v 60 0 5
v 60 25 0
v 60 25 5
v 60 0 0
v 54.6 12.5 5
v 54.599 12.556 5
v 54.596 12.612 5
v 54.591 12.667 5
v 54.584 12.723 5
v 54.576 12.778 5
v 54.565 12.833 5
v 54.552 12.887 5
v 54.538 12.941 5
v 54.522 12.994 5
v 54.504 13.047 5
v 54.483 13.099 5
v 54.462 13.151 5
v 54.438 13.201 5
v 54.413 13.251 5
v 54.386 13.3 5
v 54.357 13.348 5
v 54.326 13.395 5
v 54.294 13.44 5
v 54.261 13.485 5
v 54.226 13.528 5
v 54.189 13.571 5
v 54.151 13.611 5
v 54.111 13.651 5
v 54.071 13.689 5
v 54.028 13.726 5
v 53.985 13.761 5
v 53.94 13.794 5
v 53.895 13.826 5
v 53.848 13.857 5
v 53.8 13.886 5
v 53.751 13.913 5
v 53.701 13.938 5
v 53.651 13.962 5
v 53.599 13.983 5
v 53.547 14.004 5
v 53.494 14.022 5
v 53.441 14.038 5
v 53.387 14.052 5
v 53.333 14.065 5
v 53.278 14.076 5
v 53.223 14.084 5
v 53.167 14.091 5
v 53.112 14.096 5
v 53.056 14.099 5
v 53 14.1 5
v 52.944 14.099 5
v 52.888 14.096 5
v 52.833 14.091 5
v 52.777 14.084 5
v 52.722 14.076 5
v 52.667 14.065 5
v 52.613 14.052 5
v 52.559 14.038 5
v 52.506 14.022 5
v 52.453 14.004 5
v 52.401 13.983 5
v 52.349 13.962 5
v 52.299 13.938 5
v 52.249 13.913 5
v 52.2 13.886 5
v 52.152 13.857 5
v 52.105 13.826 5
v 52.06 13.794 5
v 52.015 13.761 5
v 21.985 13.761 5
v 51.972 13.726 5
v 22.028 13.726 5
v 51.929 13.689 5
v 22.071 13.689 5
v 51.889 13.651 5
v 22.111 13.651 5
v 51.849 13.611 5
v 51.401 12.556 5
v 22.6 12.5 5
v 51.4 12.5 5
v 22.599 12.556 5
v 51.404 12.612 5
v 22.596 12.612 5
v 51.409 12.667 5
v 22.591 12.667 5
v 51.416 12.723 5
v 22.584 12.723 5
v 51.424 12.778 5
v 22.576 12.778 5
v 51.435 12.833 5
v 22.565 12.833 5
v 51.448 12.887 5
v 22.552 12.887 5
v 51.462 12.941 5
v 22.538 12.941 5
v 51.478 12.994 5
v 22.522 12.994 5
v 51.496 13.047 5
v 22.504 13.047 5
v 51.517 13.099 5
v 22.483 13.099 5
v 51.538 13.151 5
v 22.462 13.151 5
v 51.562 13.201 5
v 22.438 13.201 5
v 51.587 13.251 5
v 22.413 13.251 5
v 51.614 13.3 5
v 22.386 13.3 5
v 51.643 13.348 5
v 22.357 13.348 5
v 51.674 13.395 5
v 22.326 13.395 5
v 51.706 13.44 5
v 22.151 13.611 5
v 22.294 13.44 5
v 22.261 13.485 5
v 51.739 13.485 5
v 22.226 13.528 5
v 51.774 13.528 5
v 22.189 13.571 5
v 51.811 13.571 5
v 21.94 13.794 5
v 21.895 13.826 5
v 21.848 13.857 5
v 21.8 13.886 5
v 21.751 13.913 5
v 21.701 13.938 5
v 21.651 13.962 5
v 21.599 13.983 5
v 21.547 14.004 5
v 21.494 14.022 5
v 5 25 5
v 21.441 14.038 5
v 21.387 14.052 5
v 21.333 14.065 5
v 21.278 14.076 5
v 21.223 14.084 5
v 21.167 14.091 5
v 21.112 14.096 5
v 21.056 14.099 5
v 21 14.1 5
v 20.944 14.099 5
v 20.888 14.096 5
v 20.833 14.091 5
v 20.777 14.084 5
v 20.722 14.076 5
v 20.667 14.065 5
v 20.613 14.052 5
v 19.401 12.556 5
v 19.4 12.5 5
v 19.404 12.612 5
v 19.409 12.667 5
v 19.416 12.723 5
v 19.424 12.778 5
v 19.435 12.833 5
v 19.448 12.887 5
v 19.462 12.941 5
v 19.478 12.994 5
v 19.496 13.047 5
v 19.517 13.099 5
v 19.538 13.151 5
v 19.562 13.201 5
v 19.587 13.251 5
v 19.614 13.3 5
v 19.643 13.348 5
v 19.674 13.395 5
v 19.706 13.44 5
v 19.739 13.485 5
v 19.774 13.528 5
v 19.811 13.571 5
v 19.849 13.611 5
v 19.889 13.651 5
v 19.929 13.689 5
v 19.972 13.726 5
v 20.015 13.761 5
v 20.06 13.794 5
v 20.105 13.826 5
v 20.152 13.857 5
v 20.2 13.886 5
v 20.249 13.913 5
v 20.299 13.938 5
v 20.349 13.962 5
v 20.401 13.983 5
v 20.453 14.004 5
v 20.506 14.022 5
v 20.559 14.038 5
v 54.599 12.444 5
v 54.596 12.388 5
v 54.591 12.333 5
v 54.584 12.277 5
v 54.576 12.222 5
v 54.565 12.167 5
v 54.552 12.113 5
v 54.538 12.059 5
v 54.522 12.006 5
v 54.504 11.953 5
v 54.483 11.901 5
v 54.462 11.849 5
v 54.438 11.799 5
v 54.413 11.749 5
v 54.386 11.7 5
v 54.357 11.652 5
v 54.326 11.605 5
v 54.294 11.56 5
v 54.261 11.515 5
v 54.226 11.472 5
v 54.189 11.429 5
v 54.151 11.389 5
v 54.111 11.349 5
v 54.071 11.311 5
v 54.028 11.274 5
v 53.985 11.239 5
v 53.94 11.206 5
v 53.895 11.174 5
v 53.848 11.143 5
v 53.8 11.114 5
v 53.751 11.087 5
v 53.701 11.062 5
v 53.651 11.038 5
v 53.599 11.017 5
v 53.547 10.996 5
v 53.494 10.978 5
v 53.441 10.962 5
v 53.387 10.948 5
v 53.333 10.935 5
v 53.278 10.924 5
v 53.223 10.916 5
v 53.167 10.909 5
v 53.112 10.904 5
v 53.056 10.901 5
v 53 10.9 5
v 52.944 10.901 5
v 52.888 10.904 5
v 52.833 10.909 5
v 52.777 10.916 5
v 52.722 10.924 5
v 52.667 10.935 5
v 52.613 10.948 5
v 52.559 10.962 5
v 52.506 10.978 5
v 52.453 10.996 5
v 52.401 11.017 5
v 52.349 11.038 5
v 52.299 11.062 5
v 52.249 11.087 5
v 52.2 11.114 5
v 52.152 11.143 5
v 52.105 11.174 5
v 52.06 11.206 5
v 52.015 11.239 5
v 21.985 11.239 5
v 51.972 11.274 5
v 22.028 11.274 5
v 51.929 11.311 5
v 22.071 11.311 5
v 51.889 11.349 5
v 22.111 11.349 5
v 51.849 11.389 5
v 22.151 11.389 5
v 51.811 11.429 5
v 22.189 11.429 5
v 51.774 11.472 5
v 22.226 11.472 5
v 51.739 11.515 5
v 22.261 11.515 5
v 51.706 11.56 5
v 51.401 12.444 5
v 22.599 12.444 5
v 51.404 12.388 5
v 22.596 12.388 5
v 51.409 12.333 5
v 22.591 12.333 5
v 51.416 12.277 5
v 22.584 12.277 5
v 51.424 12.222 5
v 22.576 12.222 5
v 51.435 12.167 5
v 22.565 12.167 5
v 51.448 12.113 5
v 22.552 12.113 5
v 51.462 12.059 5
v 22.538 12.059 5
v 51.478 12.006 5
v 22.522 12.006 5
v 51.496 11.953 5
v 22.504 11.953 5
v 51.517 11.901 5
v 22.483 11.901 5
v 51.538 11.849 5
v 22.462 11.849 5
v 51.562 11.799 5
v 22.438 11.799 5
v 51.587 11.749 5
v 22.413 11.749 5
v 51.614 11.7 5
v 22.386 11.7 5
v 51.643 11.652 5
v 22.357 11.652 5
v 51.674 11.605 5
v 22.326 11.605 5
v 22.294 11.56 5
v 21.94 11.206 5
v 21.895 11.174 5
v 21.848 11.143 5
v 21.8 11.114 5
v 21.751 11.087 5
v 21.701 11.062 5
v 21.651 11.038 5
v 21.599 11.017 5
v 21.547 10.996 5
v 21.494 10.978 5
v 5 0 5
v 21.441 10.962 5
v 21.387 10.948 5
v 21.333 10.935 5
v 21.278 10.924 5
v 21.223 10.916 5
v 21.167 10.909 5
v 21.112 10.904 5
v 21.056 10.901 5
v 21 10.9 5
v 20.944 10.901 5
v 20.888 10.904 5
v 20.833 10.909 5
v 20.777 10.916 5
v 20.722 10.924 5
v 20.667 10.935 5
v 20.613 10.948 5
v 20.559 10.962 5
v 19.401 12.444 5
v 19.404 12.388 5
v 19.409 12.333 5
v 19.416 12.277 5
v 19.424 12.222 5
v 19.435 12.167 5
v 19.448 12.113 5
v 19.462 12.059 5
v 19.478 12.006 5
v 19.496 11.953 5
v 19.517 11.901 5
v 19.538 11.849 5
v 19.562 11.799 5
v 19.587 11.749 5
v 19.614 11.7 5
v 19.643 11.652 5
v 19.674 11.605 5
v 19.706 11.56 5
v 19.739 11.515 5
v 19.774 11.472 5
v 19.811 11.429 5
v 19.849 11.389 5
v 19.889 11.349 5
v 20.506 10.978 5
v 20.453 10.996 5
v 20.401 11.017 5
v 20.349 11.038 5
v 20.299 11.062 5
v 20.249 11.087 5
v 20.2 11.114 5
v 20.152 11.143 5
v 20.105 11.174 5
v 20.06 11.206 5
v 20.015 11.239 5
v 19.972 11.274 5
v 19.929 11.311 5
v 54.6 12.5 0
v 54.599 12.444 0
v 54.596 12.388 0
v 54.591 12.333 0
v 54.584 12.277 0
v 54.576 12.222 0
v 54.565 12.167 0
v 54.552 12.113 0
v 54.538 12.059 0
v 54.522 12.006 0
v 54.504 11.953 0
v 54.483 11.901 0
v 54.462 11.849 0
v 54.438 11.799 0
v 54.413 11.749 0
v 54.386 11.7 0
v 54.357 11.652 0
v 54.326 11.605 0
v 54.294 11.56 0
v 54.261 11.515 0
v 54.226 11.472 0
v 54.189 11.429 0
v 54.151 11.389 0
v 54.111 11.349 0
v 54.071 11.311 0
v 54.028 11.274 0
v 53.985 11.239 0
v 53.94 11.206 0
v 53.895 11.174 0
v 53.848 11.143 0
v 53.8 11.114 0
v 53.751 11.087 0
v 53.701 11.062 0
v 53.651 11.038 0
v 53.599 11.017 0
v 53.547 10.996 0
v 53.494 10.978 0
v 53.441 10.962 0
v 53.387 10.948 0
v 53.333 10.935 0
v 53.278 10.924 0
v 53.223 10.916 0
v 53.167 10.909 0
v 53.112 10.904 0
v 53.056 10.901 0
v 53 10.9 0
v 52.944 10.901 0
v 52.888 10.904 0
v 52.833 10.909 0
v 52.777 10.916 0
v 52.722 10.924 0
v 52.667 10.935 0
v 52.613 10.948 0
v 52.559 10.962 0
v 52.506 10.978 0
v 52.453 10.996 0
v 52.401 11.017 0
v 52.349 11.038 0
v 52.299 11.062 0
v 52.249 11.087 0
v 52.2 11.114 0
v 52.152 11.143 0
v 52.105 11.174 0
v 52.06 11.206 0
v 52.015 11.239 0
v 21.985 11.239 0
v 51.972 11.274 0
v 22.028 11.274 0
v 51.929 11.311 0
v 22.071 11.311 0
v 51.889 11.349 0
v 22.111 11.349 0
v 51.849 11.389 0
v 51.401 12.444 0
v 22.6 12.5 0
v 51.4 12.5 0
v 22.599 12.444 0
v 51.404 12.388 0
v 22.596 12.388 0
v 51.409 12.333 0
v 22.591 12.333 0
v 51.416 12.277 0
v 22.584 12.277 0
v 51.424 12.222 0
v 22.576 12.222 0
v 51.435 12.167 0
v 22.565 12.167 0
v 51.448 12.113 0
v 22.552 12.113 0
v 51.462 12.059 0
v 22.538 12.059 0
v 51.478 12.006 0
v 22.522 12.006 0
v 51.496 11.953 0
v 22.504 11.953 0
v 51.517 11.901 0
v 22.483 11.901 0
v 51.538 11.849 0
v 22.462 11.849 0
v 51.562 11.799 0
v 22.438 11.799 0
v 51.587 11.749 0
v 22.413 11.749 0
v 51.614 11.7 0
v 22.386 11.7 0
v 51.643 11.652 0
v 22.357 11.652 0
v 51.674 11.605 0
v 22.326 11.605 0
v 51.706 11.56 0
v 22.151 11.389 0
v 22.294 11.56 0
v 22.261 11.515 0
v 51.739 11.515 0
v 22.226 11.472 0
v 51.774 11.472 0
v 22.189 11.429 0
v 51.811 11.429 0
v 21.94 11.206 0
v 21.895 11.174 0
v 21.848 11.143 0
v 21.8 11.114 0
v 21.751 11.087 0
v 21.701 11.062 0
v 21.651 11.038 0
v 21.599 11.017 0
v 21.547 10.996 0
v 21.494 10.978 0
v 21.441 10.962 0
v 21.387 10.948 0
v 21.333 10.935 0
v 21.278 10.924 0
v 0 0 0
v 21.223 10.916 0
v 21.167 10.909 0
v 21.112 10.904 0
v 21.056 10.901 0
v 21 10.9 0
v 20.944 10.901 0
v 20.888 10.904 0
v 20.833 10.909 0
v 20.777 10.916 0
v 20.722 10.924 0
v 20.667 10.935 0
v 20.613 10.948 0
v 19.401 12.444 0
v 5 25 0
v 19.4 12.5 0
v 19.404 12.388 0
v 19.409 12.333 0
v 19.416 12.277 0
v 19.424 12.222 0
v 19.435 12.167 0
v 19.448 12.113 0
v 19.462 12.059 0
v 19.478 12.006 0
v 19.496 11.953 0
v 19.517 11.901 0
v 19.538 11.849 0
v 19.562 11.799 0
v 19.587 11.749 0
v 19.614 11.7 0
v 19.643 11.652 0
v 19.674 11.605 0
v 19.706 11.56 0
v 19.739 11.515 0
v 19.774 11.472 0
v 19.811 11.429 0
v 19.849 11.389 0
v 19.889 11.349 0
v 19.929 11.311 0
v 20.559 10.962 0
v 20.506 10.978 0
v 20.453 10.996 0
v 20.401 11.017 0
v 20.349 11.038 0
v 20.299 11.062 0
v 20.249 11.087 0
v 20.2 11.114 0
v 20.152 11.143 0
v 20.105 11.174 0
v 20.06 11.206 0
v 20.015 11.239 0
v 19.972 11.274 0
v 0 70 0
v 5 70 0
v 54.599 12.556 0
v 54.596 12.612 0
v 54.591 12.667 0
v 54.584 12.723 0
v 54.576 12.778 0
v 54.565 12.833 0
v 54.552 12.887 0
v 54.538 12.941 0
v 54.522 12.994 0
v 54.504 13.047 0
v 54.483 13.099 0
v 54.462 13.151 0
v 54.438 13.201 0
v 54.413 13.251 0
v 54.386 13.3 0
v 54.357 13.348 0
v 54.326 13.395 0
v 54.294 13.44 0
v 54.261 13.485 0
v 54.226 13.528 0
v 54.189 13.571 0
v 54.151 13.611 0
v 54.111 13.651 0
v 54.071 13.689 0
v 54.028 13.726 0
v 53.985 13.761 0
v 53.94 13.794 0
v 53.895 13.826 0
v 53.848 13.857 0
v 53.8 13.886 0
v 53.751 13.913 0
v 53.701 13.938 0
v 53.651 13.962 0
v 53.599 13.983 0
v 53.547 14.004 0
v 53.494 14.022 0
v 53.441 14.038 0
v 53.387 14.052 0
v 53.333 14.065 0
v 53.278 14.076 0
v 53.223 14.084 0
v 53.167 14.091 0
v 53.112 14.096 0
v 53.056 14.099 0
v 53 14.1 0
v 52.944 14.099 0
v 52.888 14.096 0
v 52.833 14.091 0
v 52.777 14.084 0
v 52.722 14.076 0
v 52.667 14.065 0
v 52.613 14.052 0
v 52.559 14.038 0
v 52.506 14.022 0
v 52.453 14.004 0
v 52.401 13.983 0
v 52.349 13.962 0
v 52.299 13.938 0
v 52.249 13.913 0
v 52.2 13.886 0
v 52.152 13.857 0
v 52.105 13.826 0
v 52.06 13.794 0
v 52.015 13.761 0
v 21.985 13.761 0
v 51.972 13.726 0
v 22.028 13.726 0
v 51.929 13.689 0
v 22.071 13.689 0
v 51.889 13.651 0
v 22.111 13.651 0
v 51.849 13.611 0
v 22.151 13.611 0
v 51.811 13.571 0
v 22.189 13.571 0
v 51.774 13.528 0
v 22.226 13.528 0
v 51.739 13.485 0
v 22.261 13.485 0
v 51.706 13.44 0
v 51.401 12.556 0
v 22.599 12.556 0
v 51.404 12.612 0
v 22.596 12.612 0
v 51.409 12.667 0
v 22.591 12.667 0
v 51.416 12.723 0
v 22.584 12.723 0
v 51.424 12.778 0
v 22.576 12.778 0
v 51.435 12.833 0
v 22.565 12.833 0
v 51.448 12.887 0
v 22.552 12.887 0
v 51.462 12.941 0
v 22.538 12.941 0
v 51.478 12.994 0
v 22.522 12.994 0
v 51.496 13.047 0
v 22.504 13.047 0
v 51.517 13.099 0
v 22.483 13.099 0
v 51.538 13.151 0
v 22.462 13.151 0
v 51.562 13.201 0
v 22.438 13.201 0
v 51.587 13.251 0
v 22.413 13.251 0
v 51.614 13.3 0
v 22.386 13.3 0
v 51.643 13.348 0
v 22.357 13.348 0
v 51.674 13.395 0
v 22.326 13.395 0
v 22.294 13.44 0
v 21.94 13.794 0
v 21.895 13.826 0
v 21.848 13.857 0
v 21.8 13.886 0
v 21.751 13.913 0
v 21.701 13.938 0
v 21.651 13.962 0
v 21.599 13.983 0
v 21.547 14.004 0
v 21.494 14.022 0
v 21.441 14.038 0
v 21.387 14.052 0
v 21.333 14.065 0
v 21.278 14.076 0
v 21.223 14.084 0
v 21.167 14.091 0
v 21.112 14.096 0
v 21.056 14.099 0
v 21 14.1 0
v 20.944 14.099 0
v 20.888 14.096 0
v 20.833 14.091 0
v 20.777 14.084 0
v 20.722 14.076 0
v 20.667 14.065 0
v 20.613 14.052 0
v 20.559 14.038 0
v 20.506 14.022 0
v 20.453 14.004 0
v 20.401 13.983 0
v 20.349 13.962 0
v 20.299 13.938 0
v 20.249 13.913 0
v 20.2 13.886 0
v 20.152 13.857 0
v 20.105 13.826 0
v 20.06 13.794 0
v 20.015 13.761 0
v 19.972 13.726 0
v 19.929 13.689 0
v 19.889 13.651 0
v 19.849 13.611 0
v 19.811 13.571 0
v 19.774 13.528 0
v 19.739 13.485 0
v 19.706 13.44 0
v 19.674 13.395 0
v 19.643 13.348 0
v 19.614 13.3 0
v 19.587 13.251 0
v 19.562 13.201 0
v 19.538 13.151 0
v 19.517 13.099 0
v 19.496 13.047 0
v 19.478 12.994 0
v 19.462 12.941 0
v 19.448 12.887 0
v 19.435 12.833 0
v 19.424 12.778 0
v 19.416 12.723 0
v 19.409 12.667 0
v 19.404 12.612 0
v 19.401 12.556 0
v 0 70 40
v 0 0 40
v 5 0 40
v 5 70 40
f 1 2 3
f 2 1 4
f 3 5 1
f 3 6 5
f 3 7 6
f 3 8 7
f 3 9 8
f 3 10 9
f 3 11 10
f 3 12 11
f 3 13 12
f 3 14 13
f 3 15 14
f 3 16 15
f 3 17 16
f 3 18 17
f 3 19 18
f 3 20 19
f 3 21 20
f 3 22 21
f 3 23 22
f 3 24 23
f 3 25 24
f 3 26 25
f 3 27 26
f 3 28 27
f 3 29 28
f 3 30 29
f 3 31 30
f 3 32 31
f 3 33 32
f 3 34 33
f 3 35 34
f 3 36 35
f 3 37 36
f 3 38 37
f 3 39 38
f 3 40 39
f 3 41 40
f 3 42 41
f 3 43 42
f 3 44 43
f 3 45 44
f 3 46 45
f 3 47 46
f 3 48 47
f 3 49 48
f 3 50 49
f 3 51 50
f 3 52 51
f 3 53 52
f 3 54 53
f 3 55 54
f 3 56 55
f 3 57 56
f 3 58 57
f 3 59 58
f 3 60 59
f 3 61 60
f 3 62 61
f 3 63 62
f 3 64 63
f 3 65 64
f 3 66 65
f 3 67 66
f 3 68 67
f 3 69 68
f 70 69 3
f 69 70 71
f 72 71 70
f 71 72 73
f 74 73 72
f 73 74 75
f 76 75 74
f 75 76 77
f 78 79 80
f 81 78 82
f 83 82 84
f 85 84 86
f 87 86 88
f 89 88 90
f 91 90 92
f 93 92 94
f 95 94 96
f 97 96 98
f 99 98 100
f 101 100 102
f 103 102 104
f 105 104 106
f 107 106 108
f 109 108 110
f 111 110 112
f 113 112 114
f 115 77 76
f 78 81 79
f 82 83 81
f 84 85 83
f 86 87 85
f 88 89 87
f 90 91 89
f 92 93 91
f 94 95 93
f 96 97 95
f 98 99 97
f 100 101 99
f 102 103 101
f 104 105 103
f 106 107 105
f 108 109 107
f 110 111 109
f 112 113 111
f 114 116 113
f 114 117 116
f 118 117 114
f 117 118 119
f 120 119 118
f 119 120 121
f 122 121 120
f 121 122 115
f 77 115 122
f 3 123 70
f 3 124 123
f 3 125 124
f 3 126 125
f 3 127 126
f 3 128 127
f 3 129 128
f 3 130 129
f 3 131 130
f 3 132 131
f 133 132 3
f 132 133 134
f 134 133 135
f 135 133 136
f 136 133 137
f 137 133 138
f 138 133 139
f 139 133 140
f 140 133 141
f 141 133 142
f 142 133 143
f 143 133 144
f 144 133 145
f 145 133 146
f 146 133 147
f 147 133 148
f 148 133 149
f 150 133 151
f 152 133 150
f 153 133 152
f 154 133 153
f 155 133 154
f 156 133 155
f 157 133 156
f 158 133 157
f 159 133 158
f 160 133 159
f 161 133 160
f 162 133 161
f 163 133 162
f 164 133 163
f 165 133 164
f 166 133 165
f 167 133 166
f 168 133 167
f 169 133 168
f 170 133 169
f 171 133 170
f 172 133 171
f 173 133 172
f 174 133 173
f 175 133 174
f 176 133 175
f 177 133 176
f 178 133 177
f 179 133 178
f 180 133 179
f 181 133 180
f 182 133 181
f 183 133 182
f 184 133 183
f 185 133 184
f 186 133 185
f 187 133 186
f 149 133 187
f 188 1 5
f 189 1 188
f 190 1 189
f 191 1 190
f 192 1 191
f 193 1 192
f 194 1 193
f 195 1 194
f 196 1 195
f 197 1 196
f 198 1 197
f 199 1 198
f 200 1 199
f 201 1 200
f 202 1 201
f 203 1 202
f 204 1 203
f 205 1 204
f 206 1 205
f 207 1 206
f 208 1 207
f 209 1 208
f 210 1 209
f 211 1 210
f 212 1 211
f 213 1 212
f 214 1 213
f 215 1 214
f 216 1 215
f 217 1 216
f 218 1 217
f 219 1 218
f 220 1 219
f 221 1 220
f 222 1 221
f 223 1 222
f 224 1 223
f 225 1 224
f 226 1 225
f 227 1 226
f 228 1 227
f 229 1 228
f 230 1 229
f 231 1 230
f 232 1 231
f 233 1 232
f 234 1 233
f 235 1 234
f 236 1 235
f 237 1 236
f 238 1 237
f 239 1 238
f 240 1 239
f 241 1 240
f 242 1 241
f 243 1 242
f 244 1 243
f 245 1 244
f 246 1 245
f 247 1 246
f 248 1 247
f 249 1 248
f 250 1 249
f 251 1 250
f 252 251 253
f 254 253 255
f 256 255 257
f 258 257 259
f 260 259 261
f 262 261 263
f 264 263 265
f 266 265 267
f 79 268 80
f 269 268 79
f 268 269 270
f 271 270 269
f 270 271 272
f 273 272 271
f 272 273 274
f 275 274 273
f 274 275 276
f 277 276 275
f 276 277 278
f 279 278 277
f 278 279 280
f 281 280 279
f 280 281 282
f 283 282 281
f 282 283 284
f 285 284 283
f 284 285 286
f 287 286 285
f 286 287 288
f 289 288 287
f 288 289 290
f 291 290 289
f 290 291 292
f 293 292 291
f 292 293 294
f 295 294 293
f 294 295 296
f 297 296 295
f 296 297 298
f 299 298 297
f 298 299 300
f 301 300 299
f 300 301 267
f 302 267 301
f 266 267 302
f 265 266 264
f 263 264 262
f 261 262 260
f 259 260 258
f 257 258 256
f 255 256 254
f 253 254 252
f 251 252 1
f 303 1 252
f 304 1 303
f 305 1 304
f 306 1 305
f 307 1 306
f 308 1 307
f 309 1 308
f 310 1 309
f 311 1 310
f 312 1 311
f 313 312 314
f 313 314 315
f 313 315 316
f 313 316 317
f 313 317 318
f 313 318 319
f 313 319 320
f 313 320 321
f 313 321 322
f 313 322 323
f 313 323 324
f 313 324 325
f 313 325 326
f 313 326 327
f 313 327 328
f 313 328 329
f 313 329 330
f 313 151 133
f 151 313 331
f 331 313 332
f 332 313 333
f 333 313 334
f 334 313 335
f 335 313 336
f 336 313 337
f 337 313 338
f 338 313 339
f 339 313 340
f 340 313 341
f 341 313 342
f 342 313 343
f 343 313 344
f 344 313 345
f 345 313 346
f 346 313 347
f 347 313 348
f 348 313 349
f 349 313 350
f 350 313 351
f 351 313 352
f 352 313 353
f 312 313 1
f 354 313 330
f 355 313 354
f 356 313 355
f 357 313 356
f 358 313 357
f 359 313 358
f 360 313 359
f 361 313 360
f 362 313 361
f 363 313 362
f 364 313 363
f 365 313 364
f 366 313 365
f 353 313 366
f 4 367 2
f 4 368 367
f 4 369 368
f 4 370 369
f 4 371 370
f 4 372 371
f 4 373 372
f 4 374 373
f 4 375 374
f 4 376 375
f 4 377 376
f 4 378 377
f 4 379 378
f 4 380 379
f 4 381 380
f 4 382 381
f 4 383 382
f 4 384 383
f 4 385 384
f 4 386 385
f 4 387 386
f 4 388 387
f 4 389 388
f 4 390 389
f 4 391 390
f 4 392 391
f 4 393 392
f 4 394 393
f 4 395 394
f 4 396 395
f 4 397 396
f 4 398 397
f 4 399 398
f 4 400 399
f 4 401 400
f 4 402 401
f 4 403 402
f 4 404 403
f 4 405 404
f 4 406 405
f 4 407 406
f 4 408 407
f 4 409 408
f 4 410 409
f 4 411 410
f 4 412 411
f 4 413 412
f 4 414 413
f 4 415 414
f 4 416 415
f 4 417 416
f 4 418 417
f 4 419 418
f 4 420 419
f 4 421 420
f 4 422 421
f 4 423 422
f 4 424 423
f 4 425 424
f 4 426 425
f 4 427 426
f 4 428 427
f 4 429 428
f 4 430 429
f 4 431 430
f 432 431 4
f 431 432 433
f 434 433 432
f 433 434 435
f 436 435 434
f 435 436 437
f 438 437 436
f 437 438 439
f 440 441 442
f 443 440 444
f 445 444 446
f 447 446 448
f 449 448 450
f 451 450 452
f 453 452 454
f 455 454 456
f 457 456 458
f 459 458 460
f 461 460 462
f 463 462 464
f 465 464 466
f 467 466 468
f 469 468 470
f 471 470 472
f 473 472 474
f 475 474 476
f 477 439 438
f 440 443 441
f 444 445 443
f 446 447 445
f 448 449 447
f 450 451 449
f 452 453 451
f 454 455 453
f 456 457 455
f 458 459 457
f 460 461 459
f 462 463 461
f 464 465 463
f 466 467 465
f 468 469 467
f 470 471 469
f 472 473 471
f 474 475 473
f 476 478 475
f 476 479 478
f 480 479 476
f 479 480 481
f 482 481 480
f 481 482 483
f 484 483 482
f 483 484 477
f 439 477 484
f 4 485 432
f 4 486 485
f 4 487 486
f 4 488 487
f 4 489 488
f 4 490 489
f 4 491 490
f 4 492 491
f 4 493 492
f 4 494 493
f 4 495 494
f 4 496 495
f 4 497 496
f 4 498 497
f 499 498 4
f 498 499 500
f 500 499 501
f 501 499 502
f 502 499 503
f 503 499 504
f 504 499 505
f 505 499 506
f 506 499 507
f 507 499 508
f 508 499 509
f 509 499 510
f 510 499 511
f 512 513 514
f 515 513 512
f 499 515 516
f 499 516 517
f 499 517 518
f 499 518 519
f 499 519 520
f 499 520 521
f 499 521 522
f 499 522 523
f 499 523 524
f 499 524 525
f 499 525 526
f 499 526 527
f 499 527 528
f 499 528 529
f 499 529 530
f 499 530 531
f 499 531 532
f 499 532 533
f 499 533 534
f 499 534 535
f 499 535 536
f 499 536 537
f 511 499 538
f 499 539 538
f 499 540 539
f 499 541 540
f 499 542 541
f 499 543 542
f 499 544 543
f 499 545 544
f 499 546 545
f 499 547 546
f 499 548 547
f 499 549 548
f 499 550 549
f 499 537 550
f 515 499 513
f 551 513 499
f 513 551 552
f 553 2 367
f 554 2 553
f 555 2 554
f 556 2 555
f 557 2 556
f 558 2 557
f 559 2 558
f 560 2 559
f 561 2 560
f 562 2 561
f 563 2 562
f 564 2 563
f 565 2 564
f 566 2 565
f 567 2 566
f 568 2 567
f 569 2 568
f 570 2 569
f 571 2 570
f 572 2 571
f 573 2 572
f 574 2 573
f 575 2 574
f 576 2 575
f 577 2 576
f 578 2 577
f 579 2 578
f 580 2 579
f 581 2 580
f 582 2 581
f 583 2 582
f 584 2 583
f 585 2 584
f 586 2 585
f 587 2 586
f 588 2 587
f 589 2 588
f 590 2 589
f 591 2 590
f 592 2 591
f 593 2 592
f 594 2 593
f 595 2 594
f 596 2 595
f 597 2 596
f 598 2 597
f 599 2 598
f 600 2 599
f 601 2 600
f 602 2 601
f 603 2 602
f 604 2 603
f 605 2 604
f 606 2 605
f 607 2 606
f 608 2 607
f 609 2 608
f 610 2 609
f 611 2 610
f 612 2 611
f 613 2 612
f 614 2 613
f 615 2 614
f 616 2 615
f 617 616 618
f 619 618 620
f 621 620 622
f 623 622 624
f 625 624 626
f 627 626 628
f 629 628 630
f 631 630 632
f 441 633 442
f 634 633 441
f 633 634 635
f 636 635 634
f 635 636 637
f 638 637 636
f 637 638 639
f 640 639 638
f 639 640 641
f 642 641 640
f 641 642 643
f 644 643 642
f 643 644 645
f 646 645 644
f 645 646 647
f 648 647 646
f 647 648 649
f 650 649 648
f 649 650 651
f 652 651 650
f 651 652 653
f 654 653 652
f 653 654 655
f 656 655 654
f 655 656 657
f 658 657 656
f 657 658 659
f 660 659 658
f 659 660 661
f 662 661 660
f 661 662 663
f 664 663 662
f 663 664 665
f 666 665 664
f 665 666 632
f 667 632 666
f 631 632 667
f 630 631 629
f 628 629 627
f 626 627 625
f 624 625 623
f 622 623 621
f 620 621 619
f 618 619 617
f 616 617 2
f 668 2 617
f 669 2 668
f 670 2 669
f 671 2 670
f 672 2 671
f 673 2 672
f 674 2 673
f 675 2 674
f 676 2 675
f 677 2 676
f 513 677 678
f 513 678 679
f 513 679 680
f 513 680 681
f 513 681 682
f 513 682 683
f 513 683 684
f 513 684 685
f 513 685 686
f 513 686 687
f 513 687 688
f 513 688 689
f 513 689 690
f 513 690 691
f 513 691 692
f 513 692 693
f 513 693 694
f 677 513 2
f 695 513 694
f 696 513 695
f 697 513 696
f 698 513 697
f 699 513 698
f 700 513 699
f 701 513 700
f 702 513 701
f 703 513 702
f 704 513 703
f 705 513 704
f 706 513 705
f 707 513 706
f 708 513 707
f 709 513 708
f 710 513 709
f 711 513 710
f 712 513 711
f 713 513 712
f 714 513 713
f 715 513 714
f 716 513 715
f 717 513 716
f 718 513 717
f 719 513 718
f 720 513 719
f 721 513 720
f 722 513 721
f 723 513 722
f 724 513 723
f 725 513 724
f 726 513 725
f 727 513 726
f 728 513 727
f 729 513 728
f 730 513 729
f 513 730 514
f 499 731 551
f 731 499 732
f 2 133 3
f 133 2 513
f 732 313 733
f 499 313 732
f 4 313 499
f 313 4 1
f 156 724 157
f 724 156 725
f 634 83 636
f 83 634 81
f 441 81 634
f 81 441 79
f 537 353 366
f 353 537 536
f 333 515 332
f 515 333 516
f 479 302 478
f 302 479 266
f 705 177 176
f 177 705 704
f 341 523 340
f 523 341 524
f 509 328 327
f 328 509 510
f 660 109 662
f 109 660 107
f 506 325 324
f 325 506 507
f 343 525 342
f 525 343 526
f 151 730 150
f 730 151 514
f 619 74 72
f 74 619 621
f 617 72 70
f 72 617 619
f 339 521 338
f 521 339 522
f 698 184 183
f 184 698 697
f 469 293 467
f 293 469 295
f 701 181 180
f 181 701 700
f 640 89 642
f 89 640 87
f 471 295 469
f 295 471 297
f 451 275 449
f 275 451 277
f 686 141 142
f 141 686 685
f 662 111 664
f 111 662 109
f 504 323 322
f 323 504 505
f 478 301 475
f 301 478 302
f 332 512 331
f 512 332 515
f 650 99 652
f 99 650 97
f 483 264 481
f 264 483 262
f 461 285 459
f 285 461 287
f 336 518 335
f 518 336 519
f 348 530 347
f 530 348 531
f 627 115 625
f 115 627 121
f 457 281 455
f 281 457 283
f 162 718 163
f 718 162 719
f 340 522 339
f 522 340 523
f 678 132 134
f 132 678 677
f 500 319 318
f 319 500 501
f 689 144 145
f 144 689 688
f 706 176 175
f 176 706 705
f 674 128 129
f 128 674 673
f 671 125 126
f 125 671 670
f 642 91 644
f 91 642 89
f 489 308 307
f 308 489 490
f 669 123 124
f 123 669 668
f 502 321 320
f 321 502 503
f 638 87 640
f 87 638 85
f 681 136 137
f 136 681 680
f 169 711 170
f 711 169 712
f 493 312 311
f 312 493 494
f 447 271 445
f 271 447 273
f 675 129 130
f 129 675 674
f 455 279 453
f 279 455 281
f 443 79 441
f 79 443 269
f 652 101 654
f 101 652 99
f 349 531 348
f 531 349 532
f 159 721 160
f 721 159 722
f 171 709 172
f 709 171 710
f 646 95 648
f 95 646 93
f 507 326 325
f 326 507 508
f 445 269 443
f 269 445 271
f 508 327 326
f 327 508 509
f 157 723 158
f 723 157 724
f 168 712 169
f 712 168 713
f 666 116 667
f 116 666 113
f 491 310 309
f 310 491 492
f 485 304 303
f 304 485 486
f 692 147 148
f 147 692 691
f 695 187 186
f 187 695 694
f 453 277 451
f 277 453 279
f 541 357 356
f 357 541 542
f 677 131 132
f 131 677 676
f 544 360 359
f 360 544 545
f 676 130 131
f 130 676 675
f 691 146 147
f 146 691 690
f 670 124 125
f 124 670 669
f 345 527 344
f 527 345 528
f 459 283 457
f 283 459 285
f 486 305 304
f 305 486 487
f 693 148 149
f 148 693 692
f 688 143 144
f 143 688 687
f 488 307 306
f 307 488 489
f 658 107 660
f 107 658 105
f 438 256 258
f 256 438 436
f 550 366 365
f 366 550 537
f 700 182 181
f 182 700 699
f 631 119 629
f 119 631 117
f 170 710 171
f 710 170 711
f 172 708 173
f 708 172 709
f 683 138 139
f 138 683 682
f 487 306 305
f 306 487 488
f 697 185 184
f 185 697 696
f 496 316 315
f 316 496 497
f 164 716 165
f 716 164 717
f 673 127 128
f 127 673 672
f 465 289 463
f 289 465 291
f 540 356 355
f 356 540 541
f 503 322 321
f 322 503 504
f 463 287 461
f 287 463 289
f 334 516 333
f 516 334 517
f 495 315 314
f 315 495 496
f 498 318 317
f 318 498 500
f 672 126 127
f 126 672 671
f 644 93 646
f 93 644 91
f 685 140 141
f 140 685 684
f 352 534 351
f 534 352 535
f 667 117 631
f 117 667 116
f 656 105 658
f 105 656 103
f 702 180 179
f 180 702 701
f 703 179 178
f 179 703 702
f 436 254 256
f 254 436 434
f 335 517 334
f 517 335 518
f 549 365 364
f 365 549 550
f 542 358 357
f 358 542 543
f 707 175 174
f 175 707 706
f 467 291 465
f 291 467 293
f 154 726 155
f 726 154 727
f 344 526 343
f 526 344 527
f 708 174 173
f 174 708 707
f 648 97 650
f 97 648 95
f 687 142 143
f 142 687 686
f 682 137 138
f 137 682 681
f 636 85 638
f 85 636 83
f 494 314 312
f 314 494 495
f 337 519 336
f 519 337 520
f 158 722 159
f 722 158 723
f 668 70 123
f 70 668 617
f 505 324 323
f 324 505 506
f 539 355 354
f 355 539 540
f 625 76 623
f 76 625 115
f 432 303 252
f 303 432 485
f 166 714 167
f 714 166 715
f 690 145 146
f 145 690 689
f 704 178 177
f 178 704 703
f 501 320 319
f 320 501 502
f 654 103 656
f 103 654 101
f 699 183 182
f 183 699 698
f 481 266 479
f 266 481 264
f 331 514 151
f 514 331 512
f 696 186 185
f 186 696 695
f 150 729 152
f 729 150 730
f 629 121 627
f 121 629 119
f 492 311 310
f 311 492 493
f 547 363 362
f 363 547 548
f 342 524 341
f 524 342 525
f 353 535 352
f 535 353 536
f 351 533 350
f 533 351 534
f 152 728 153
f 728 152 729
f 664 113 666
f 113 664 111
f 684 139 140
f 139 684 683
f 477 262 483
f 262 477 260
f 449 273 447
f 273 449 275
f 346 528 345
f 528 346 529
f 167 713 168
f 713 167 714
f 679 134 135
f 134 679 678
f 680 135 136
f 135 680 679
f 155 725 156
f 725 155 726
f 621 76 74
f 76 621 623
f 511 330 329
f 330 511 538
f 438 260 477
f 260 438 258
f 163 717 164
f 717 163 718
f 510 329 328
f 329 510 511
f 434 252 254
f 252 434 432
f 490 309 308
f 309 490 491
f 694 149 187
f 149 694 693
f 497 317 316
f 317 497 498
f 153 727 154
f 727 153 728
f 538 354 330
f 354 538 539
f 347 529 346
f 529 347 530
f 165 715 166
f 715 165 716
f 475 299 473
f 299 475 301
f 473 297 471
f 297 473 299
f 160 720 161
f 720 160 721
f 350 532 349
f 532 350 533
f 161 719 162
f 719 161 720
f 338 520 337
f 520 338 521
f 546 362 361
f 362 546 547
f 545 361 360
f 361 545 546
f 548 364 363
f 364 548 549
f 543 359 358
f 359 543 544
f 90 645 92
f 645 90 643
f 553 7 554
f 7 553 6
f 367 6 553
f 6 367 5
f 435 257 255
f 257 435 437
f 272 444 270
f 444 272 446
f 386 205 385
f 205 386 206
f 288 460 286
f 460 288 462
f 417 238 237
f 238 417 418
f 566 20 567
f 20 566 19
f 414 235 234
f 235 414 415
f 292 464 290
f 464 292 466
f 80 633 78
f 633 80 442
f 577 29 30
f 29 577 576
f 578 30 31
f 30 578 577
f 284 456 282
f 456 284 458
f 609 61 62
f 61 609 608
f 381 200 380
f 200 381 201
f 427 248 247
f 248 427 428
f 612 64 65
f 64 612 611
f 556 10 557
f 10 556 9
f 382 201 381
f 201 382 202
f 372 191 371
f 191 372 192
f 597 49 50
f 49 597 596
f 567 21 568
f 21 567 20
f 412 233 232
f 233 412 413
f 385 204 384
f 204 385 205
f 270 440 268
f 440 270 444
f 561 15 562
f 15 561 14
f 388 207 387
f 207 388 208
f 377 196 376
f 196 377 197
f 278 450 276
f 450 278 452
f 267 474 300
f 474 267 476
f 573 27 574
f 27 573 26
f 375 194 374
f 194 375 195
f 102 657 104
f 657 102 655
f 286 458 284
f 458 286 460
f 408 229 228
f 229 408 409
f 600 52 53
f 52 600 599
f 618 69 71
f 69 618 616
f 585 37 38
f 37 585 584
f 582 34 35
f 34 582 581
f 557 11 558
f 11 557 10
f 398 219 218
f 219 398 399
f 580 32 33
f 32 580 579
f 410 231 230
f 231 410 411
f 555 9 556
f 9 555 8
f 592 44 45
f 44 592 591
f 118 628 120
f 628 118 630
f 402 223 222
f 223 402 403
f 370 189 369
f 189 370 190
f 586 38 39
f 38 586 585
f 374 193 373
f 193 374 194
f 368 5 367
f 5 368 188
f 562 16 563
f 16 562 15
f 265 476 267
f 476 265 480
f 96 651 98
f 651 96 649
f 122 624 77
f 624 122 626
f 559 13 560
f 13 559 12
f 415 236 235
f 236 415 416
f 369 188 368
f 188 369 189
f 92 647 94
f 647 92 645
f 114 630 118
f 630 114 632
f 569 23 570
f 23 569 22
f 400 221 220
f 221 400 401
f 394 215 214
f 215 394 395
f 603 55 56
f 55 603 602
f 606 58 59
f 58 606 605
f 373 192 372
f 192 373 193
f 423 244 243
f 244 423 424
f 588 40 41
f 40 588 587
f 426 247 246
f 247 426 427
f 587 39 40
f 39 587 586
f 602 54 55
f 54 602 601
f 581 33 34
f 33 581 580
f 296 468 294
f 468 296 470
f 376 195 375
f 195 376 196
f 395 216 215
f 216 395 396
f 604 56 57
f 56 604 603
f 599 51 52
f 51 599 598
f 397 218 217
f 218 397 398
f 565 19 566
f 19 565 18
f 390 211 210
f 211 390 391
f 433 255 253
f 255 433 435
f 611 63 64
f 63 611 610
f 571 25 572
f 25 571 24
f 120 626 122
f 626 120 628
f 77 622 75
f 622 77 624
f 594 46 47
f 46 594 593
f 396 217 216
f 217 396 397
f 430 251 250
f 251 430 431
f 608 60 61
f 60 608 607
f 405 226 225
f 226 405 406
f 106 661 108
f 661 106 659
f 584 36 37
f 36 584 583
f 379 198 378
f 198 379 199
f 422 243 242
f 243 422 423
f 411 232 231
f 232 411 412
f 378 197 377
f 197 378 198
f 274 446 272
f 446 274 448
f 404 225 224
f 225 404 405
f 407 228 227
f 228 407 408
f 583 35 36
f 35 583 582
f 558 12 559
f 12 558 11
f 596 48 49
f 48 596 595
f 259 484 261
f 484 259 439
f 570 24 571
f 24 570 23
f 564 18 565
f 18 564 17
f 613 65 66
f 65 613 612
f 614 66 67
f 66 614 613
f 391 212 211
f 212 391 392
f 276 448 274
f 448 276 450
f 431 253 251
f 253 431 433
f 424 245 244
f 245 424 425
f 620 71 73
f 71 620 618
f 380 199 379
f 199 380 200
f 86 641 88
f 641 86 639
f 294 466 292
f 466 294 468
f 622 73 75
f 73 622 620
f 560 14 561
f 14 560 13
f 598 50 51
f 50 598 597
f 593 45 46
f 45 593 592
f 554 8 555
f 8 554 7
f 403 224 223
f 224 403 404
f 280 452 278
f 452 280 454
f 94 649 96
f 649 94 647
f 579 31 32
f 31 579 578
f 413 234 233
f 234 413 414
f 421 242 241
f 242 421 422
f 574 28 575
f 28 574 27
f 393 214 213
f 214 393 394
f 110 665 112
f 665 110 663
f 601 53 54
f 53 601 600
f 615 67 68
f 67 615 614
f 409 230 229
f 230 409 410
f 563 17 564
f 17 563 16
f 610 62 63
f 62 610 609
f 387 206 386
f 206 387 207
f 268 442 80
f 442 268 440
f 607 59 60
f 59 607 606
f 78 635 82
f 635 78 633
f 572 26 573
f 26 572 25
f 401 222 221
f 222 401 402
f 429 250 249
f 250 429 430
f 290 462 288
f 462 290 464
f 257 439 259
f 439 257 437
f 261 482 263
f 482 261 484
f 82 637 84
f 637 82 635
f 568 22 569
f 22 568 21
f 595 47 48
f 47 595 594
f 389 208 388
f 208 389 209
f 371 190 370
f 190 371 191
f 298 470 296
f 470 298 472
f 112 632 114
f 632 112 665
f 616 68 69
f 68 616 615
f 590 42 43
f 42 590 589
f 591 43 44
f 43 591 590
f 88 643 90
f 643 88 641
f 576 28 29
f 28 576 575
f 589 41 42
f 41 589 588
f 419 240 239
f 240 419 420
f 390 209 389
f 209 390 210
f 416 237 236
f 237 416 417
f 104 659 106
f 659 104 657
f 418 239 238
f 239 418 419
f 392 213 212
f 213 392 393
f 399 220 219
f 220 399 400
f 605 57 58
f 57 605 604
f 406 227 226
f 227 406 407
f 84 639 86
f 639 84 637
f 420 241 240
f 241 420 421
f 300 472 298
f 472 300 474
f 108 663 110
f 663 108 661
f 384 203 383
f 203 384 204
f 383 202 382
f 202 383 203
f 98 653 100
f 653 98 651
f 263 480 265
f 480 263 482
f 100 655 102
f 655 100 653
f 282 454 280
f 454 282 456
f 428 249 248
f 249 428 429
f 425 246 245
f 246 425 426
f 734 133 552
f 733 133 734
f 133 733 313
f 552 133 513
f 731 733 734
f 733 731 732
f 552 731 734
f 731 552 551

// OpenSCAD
// hole distance 32
// hole m3
// border distance 21

width = 60;
length_holder = 25;
length = 70;
thickness = 5;

diameter_screw = 3.2;
border_distance = 21;
hole_distance = 32;

height = 40;

$fn = 180;

difference() {
    cube([width, length_holder, thickness]);
    translate([border_distance, length_holder / 2, 0]) cylinder(d=3.2, thickness);
    
    translate([border_distance + hole_distance, length_holder / 2, 0]) cylinder(d=3.2, thickness);
}


cube([thickness, length, height]);
